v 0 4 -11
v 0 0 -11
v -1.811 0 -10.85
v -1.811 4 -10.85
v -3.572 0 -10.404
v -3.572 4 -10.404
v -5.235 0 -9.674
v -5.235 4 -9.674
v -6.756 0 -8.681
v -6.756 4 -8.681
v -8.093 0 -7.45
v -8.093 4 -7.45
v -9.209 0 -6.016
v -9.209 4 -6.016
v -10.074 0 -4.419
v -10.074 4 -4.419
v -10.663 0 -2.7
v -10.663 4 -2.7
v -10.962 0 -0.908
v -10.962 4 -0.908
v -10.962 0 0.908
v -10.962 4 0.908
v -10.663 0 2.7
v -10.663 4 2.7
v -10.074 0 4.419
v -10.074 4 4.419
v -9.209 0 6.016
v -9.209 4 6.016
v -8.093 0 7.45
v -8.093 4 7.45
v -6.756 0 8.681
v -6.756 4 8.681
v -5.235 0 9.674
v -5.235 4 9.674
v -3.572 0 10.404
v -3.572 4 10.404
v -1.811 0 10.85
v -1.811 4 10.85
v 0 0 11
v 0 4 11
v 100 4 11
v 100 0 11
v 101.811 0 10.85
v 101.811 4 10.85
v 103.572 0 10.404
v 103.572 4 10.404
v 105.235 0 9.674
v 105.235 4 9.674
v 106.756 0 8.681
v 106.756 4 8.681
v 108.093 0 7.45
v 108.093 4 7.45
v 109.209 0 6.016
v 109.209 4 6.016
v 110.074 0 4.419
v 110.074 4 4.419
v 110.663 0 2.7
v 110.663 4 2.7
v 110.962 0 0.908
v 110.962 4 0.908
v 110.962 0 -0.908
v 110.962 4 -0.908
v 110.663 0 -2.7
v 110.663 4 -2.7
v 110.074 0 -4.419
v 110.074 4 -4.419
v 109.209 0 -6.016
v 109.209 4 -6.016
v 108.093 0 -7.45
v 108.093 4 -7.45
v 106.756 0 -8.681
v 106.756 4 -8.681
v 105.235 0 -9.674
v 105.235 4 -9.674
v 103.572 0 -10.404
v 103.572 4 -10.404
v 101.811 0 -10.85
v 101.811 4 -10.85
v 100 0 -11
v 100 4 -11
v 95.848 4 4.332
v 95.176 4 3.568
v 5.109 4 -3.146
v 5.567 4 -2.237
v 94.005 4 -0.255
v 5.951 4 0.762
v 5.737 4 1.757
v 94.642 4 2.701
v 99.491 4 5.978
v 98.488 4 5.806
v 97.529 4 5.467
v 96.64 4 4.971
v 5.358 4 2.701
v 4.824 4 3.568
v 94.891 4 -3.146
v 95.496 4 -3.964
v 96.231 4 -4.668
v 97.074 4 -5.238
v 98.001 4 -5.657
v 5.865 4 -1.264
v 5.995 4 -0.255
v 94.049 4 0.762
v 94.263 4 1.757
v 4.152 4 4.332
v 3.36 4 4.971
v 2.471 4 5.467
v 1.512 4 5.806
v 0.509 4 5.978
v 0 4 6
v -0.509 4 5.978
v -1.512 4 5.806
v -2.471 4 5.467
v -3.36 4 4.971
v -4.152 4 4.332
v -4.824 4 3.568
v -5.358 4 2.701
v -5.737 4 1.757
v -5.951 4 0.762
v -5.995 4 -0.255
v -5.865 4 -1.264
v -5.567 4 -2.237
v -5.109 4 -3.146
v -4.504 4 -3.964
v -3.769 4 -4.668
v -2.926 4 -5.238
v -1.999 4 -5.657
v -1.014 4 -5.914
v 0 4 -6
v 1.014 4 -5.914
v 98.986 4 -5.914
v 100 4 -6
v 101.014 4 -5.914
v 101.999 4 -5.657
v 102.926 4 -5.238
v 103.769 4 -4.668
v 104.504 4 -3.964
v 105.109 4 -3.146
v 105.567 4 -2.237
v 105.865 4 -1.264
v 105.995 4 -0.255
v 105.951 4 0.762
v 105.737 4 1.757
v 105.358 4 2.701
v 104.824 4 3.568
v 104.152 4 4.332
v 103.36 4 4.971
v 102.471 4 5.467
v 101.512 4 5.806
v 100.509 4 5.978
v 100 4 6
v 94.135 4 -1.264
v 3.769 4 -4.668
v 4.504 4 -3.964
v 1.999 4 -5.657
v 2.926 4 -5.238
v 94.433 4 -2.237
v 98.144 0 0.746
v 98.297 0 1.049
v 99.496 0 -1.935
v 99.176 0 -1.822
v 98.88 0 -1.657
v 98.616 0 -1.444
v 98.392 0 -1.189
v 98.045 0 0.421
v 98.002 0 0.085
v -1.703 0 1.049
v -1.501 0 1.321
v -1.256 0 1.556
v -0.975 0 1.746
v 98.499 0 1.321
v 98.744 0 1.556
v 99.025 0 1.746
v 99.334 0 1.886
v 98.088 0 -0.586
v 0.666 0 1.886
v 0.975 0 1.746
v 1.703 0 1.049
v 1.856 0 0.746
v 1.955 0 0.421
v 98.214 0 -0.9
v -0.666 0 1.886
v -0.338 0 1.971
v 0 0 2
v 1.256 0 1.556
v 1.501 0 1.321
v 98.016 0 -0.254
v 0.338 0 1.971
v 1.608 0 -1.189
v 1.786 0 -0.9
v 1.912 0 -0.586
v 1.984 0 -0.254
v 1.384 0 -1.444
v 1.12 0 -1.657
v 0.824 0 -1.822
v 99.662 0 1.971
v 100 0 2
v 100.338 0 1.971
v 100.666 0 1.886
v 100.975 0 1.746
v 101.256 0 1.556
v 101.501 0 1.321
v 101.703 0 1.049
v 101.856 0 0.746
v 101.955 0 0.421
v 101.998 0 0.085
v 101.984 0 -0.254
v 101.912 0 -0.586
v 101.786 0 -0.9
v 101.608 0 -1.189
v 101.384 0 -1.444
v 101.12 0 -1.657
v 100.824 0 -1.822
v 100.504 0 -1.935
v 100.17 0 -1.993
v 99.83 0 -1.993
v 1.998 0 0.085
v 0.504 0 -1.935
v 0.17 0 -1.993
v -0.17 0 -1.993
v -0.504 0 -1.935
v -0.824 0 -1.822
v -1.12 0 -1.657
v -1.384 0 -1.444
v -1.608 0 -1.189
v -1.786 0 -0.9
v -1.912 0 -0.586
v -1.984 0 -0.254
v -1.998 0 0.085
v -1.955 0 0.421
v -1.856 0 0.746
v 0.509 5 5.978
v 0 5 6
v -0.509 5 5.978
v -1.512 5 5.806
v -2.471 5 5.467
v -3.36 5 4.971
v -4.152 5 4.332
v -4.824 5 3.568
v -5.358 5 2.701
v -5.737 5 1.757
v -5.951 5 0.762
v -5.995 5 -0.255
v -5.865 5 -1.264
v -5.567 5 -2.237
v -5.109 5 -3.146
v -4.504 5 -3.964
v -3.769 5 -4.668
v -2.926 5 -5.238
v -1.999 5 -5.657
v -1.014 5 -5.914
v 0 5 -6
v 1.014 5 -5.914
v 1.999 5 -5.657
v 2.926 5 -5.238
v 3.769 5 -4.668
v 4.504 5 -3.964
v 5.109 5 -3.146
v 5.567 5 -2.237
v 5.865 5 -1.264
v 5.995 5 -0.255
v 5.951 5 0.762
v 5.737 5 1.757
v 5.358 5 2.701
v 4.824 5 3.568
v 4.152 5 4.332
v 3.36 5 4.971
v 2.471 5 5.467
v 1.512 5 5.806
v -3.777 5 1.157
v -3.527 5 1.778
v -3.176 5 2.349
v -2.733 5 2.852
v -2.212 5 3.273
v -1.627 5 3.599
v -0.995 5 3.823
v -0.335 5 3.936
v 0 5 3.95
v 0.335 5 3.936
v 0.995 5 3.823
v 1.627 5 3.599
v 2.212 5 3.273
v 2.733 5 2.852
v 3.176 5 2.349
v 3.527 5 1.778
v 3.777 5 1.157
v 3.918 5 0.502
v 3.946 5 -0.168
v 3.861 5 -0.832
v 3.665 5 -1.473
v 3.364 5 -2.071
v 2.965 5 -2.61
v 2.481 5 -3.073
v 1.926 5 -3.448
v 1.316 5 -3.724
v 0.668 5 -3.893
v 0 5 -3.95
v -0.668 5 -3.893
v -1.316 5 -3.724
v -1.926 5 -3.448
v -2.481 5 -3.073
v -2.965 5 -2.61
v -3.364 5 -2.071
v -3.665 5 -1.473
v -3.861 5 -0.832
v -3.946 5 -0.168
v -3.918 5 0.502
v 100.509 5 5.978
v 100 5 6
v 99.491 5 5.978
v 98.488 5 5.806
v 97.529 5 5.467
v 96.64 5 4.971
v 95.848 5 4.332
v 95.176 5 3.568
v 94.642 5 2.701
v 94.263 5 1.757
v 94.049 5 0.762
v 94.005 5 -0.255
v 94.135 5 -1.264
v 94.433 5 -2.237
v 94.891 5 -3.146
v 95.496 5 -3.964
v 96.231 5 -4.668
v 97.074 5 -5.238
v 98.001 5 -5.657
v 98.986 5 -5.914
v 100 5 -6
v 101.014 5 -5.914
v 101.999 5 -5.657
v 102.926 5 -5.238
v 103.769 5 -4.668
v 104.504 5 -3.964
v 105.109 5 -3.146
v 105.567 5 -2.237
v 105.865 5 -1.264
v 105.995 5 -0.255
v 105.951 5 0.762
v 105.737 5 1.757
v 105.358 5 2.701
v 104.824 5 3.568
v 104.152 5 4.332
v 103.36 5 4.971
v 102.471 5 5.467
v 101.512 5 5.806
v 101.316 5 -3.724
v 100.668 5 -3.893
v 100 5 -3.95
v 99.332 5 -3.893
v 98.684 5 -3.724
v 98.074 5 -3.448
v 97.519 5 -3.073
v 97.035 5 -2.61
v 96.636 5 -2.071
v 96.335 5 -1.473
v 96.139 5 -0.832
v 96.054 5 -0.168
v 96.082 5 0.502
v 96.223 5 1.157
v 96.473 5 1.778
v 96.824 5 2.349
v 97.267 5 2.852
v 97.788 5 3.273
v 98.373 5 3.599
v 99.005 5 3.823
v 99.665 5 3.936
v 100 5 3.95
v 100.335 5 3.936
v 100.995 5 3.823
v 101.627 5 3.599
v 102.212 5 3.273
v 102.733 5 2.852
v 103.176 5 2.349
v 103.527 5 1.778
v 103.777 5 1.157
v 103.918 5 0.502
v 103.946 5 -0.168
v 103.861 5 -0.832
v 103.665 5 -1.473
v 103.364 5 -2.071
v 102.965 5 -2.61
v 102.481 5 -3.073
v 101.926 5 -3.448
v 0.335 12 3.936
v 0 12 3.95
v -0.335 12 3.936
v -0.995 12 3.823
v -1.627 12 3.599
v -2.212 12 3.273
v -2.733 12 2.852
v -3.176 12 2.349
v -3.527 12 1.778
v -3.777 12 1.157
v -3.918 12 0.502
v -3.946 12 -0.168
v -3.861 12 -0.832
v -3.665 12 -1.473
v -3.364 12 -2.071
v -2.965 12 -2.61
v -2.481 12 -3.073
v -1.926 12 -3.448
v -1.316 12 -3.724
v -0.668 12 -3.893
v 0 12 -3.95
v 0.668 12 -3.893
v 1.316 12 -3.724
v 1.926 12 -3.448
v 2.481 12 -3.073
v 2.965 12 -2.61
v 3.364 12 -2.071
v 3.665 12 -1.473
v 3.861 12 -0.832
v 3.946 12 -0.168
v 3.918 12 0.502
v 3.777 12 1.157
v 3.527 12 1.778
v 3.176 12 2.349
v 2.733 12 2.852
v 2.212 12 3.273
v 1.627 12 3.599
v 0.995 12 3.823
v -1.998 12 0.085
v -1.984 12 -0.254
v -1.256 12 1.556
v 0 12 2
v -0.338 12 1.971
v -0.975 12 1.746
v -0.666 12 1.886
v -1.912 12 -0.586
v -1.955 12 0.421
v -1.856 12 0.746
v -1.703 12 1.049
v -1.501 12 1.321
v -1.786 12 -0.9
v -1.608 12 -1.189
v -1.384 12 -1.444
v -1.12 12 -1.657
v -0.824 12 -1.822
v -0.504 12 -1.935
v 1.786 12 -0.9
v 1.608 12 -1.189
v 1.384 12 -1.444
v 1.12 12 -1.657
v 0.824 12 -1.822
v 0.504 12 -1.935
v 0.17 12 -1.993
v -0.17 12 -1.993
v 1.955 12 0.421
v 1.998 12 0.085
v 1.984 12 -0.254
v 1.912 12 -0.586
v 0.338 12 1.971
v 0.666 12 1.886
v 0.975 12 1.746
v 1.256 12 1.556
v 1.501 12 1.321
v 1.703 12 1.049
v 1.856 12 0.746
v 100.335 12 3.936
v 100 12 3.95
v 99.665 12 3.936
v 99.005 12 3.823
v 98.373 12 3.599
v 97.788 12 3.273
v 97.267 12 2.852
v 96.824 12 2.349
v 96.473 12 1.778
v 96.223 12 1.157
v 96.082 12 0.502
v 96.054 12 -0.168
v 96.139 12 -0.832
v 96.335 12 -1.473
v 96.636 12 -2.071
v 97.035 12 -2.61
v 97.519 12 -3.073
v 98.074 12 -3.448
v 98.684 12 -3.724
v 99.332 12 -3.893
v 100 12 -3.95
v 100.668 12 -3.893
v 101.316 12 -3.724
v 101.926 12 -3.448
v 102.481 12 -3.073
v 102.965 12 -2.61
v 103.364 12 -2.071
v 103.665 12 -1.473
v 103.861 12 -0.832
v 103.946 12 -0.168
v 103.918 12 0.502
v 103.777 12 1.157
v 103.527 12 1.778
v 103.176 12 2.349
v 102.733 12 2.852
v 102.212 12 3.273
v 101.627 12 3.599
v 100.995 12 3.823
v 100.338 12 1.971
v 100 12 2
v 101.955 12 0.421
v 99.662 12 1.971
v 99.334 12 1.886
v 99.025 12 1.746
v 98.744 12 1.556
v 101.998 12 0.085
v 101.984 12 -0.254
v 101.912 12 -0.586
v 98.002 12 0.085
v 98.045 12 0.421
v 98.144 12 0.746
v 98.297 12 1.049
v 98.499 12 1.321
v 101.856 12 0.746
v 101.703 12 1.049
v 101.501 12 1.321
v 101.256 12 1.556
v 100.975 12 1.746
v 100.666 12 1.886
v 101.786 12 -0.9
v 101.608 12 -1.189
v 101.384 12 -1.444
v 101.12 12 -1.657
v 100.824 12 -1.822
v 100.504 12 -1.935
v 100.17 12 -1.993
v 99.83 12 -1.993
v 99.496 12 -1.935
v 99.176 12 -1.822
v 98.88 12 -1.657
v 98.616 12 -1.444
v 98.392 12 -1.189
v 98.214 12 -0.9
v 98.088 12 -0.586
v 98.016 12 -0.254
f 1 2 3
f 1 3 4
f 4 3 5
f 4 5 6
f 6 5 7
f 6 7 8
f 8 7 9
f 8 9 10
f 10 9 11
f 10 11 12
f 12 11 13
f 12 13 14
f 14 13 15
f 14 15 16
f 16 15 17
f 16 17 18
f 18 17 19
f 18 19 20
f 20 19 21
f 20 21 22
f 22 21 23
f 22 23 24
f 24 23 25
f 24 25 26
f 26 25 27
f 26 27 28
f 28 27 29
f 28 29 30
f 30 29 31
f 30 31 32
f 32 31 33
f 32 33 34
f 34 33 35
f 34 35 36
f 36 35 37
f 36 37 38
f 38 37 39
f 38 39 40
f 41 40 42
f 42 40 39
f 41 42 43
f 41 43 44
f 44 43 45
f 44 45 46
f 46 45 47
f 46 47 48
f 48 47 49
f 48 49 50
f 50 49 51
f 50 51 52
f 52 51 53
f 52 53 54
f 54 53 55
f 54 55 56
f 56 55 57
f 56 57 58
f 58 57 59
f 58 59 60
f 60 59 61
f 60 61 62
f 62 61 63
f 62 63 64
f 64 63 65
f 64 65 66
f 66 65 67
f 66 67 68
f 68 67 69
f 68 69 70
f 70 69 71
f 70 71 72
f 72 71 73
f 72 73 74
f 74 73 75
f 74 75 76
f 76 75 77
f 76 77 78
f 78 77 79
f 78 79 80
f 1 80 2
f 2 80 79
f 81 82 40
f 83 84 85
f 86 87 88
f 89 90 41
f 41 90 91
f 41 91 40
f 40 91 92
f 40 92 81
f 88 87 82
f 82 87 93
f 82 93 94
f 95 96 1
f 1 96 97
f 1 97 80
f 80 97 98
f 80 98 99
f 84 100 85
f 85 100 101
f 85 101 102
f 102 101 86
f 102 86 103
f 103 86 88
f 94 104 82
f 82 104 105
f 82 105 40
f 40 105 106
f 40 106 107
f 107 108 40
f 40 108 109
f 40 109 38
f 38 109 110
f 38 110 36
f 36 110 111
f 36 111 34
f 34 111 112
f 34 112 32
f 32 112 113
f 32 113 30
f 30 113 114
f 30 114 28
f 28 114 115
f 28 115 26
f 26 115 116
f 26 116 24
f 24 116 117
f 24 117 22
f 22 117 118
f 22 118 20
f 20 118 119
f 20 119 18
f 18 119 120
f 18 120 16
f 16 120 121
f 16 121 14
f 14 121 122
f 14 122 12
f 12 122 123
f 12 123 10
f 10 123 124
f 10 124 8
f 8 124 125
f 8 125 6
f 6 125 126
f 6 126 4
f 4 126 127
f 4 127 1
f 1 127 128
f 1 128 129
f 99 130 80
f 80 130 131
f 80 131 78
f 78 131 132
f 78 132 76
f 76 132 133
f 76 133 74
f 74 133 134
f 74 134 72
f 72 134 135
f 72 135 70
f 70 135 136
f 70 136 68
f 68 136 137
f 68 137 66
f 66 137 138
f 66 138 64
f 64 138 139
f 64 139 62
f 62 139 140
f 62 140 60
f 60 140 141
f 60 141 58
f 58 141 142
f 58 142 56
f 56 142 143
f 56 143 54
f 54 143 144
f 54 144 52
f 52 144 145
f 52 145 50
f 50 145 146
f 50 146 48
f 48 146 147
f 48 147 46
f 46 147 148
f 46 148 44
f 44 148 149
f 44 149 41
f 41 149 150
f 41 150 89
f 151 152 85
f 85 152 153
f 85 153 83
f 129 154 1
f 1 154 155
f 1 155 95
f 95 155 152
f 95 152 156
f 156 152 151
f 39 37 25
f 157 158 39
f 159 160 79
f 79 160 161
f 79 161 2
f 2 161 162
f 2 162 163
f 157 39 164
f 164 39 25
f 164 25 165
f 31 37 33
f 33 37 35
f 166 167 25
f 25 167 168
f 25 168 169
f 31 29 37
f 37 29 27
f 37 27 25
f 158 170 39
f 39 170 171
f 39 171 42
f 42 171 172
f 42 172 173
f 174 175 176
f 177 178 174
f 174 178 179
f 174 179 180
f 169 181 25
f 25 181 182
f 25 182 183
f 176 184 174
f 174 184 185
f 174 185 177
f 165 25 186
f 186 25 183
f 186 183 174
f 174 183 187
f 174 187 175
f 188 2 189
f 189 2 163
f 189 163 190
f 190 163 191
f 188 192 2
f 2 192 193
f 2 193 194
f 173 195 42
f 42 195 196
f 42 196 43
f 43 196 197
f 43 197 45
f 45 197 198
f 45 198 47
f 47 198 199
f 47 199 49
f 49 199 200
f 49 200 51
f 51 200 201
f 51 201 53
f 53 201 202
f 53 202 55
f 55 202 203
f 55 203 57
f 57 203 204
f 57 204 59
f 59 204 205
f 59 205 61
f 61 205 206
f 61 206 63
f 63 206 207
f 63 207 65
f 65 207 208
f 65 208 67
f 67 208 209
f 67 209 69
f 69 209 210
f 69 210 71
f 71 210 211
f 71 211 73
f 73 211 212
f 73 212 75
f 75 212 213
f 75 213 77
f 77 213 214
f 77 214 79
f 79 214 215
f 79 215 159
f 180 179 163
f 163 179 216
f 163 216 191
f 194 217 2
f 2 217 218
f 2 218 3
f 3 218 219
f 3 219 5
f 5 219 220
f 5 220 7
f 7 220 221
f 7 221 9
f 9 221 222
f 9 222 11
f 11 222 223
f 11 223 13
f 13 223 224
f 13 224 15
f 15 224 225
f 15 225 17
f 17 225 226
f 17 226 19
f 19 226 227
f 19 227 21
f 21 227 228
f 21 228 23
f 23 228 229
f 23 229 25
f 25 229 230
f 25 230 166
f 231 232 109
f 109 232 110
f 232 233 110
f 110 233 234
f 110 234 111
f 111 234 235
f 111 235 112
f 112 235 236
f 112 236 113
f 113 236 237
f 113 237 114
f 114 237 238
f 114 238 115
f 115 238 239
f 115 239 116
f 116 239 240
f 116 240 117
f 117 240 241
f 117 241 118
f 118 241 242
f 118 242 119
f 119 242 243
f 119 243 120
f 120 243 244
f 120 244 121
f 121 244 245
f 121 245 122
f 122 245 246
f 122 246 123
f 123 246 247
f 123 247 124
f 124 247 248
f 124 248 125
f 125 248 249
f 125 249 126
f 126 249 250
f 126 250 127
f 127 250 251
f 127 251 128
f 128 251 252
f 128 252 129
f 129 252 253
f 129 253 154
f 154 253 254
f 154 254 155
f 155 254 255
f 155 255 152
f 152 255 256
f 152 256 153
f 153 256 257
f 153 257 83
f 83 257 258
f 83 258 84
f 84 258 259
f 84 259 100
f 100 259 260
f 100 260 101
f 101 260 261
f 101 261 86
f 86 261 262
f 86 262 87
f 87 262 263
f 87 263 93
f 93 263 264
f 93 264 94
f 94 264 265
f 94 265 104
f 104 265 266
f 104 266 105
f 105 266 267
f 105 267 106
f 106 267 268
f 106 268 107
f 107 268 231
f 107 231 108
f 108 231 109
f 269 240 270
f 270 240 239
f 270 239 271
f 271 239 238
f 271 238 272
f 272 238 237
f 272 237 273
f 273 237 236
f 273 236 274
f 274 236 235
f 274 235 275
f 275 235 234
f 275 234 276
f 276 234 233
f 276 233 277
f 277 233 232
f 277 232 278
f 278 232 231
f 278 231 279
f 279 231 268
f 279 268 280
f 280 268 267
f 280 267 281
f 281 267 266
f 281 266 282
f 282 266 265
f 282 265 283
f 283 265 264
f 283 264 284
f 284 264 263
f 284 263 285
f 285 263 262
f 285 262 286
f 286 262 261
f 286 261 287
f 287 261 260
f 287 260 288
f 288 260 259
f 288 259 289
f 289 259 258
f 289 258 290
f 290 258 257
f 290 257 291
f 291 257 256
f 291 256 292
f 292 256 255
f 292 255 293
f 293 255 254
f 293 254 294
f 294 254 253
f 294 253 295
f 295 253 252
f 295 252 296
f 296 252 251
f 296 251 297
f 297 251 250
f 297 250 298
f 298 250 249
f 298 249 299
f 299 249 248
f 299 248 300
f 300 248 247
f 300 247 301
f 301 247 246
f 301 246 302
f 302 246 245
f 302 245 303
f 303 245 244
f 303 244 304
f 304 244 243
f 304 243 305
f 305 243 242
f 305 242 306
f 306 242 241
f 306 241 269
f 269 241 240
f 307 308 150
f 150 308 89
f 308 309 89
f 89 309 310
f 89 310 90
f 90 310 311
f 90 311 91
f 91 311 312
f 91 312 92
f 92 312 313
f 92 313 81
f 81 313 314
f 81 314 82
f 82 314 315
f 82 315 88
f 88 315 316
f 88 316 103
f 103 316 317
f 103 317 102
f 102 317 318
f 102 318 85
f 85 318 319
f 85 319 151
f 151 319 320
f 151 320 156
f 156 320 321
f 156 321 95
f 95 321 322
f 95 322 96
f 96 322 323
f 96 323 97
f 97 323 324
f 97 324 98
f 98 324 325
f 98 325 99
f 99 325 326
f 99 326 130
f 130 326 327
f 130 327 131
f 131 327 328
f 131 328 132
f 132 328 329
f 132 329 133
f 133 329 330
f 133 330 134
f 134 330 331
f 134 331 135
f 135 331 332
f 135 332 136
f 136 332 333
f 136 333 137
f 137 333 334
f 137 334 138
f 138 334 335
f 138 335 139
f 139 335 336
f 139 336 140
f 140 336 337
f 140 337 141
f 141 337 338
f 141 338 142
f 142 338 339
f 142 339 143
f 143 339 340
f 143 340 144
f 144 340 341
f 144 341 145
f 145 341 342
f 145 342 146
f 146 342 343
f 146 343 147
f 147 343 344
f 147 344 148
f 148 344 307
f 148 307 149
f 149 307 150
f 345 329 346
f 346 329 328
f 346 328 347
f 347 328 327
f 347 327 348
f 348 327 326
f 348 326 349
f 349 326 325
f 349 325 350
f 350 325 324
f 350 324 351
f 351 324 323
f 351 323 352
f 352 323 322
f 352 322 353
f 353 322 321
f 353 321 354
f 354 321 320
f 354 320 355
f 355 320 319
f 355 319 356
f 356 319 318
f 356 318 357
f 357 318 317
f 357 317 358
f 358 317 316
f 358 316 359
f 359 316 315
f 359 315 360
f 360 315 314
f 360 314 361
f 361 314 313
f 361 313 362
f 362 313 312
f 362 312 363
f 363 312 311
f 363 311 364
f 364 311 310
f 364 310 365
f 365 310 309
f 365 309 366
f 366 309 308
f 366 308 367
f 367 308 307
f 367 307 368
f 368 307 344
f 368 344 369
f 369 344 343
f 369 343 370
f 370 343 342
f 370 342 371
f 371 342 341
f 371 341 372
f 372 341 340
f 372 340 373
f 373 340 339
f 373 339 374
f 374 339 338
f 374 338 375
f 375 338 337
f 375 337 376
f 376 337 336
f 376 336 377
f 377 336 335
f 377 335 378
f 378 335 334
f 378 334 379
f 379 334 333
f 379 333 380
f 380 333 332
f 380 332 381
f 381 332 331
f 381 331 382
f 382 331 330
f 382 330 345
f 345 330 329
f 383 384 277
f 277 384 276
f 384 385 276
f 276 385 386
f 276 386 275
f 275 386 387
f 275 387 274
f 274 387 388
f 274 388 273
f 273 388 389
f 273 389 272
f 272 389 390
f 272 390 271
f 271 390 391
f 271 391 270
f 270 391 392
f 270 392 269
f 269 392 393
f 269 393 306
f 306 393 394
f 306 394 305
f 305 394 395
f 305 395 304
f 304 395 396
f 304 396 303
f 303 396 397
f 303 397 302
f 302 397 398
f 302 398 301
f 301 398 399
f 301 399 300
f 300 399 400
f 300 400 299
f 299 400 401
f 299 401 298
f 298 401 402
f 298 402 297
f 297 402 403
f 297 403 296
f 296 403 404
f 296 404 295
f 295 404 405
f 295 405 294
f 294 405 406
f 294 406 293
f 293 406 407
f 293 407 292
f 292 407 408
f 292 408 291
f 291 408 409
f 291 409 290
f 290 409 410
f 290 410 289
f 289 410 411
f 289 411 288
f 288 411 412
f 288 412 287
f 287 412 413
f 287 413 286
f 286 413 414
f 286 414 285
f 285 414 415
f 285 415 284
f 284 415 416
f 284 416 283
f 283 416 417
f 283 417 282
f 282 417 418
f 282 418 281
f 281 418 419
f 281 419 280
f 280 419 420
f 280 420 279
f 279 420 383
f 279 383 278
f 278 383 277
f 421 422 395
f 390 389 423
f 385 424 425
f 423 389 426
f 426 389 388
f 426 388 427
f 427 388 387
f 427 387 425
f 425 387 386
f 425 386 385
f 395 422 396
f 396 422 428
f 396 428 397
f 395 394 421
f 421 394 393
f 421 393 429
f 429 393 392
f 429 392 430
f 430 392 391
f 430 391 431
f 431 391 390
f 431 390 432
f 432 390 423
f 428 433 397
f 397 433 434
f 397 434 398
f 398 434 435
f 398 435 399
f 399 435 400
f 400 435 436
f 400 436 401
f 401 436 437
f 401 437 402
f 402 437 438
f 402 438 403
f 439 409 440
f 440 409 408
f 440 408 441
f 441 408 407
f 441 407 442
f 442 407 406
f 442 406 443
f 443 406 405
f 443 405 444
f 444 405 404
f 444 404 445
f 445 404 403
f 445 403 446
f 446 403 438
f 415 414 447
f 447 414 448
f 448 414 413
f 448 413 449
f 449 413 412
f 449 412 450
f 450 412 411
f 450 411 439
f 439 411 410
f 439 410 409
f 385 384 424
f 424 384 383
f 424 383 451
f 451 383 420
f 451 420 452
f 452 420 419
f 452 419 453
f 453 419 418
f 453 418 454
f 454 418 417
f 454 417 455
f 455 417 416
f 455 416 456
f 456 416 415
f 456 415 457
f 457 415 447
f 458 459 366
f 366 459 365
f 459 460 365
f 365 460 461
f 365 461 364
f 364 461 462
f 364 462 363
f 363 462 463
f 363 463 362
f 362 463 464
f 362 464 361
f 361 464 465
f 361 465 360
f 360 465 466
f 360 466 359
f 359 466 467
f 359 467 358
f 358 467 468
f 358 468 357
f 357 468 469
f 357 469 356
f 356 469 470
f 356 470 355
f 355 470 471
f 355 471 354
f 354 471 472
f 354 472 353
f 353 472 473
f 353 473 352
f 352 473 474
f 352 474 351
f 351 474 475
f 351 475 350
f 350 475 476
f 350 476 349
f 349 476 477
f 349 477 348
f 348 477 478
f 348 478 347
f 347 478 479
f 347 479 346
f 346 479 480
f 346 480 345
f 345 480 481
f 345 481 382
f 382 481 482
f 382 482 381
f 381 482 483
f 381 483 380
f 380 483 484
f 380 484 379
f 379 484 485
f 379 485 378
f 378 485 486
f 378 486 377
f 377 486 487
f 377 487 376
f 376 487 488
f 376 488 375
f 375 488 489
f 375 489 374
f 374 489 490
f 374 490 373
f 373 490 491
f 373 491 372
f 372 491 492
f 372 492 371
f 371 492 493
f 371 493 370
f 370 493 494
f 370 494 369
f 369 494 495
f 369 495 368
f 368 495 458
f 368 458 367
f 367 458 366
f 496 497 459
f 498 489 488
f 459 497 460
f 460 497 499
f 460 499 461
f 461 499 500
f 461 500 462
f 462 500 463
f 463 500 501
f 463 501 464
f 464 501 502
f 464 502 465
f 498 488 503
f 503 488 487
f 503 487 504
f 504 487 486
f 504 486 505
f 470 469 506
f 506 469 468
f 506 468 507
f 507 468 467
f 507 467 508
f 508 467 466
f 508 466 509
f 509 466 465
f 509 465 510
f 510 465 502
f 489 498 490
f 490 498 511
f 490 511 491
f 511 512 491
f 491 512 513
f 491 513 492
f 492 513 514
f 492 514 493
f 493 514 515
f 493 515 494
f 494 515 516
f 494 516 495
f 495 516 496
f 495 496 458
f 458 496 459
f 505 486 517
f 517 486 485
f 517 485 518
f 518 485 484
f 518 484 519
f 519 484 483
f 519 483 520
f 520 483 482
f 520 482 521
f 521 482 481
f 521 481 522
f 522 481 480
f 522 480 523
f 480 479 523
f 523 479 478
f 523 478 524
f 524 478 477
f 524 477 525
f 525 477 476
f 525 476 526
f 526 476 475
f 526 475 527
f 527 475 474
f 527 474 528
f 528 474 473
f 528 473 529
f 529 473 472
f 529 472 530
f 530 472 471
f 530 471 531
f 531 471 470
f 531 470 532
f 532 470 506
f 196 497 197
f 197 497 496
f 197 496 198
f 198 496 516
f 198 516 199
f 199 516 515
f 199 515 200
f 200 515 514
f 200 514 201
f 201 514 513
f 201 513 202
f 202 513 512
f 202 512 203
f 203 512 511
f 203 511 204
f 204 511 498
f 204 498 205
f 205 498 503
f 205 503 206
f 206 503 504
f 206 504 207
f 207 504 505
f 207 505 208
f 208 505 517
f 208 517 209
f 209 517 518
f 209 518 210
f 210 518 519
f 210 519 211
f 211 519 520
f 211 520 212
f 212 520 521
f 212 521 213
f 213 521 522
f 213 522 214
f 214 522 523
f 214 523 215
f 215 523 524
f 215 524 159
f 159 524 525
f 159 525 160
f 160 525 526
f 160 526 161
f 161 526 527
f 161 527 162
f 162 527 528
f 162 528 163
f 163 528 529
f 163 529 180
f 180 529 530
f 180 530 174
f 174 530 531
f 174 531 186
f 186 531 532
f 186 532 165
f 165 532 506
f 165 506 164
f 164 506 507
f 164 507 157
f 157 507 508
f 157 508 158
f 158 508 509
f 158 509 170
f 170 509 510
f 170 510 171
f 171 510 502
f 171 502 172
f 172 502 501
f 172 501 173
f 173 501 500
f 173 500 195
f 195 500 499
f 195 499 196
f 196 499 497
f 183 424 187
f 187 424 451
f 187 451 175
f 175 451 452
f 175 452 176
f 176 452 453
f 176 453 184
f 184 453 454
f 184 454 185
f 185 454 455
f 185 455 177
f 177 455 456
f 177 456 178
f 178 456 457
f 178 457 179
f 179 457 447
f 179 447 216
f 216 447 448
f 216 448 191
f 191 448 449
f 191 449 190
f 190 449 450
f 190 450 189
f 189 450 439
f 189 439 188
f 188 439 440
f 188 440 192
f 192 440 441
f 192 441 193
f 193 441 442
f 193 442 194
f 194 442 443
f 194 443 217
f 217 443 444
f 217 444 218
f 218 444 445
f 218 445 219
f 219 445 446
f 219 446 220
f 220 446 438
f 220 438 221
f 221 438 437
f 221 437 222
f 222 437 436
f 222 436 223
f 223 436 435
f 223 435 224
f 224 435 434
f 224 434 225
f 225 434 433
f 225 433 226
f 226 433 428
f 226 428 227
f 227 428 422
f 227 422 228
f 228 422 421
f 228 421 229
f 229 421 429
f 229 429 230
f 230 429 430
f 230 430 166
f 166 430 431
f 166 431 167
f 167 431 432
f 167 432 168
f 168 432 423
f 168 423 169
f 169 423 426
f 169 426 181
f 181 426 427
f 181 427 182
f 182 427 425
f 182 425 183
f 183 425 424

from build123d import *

# Parameters (mm, degrees)
BOSS_EXTRUDE1_DEPTH = 4
SKETCH2_R           = 6
BOSS_EXTRUDE2_DEPTH = 1
SKETCH3_R           = 3.95
BOSS_EXTRUDE3_DEPTH = 7
SKETCH4_R           = 2
CUT_EXTRUDE1_DEPTH  = 113.187343315


with BuildPart() as part:
    # Sketch1 → Boss-Extrude1 (new body)
    with BuildSketch(Plane(origin=(0, 0, 0), x_dir=(1, 0, 0), z_dir=(0, 1, 0))):
        with BuildLine():
            Line((0, 11), (100, 11))
            ThreePointArc((100, 11), (111, 0), (100, -11))
            Line((100, -11), (0, -11))
            ThreePointArc((0, -11), (-11, 0), (0, 11))
        make_face()
    extrude(amount=BOSS_EXTRUDE1_DEPTH)

    # Sketch2 → Boss-Extrude2 (add)
    with BuildSketch(Plane(origin=(0, 4, 0), x_dir=(1, 0, 0), z_dir=(0, 1, 0))):
        with Locations(Location((0, 0, 0), (0, 0, 270))):
            Circle(SKETCH2_R)
        with Locations(Location((100, 0, 0), (0, 0, 270))):
            Circle(SKETCH2_R)
    extrude(amount=BOSS_EXTRUDE2_DEPTH)

    # Sketch3 → Boss-Extrude3 (add)
    with BuildSketch(Plane(origin=(0, 5, 0), x_dir=(1, 0, 0), z_dir=(0, 1, 0))):
        with Locations(Location((0, 0, 0), (0, 0, 270))):
            Circle(SKETCH3_R)
        with Locations(Location((100, 0, 0), (0, 0, 270))):
            Circle(SKETCH3_R)
    extrude(amount=BOSS_EXTRUDE3_DEPTH)

    # Sketch4 → Cut-Extrude1 (cut, through all)
    with BuildSketch(Plane(origin=(0, 12, 0), x_dir=(1, 0, 0), z_dir=(0, 1, 0))):
        with Locations(Location((0, 0, 0), (0, 0, 270))):
            Circle(SKETCH4_R)
        with Locations(Location((100, 0, 0), (0, 0, 270))):
            Circle(SKETCH4_R)
    extrude(amount=-CUT_EXTRUDE1_DEPTH, mode=Mode.SUBTRACT)


solid = part.part
